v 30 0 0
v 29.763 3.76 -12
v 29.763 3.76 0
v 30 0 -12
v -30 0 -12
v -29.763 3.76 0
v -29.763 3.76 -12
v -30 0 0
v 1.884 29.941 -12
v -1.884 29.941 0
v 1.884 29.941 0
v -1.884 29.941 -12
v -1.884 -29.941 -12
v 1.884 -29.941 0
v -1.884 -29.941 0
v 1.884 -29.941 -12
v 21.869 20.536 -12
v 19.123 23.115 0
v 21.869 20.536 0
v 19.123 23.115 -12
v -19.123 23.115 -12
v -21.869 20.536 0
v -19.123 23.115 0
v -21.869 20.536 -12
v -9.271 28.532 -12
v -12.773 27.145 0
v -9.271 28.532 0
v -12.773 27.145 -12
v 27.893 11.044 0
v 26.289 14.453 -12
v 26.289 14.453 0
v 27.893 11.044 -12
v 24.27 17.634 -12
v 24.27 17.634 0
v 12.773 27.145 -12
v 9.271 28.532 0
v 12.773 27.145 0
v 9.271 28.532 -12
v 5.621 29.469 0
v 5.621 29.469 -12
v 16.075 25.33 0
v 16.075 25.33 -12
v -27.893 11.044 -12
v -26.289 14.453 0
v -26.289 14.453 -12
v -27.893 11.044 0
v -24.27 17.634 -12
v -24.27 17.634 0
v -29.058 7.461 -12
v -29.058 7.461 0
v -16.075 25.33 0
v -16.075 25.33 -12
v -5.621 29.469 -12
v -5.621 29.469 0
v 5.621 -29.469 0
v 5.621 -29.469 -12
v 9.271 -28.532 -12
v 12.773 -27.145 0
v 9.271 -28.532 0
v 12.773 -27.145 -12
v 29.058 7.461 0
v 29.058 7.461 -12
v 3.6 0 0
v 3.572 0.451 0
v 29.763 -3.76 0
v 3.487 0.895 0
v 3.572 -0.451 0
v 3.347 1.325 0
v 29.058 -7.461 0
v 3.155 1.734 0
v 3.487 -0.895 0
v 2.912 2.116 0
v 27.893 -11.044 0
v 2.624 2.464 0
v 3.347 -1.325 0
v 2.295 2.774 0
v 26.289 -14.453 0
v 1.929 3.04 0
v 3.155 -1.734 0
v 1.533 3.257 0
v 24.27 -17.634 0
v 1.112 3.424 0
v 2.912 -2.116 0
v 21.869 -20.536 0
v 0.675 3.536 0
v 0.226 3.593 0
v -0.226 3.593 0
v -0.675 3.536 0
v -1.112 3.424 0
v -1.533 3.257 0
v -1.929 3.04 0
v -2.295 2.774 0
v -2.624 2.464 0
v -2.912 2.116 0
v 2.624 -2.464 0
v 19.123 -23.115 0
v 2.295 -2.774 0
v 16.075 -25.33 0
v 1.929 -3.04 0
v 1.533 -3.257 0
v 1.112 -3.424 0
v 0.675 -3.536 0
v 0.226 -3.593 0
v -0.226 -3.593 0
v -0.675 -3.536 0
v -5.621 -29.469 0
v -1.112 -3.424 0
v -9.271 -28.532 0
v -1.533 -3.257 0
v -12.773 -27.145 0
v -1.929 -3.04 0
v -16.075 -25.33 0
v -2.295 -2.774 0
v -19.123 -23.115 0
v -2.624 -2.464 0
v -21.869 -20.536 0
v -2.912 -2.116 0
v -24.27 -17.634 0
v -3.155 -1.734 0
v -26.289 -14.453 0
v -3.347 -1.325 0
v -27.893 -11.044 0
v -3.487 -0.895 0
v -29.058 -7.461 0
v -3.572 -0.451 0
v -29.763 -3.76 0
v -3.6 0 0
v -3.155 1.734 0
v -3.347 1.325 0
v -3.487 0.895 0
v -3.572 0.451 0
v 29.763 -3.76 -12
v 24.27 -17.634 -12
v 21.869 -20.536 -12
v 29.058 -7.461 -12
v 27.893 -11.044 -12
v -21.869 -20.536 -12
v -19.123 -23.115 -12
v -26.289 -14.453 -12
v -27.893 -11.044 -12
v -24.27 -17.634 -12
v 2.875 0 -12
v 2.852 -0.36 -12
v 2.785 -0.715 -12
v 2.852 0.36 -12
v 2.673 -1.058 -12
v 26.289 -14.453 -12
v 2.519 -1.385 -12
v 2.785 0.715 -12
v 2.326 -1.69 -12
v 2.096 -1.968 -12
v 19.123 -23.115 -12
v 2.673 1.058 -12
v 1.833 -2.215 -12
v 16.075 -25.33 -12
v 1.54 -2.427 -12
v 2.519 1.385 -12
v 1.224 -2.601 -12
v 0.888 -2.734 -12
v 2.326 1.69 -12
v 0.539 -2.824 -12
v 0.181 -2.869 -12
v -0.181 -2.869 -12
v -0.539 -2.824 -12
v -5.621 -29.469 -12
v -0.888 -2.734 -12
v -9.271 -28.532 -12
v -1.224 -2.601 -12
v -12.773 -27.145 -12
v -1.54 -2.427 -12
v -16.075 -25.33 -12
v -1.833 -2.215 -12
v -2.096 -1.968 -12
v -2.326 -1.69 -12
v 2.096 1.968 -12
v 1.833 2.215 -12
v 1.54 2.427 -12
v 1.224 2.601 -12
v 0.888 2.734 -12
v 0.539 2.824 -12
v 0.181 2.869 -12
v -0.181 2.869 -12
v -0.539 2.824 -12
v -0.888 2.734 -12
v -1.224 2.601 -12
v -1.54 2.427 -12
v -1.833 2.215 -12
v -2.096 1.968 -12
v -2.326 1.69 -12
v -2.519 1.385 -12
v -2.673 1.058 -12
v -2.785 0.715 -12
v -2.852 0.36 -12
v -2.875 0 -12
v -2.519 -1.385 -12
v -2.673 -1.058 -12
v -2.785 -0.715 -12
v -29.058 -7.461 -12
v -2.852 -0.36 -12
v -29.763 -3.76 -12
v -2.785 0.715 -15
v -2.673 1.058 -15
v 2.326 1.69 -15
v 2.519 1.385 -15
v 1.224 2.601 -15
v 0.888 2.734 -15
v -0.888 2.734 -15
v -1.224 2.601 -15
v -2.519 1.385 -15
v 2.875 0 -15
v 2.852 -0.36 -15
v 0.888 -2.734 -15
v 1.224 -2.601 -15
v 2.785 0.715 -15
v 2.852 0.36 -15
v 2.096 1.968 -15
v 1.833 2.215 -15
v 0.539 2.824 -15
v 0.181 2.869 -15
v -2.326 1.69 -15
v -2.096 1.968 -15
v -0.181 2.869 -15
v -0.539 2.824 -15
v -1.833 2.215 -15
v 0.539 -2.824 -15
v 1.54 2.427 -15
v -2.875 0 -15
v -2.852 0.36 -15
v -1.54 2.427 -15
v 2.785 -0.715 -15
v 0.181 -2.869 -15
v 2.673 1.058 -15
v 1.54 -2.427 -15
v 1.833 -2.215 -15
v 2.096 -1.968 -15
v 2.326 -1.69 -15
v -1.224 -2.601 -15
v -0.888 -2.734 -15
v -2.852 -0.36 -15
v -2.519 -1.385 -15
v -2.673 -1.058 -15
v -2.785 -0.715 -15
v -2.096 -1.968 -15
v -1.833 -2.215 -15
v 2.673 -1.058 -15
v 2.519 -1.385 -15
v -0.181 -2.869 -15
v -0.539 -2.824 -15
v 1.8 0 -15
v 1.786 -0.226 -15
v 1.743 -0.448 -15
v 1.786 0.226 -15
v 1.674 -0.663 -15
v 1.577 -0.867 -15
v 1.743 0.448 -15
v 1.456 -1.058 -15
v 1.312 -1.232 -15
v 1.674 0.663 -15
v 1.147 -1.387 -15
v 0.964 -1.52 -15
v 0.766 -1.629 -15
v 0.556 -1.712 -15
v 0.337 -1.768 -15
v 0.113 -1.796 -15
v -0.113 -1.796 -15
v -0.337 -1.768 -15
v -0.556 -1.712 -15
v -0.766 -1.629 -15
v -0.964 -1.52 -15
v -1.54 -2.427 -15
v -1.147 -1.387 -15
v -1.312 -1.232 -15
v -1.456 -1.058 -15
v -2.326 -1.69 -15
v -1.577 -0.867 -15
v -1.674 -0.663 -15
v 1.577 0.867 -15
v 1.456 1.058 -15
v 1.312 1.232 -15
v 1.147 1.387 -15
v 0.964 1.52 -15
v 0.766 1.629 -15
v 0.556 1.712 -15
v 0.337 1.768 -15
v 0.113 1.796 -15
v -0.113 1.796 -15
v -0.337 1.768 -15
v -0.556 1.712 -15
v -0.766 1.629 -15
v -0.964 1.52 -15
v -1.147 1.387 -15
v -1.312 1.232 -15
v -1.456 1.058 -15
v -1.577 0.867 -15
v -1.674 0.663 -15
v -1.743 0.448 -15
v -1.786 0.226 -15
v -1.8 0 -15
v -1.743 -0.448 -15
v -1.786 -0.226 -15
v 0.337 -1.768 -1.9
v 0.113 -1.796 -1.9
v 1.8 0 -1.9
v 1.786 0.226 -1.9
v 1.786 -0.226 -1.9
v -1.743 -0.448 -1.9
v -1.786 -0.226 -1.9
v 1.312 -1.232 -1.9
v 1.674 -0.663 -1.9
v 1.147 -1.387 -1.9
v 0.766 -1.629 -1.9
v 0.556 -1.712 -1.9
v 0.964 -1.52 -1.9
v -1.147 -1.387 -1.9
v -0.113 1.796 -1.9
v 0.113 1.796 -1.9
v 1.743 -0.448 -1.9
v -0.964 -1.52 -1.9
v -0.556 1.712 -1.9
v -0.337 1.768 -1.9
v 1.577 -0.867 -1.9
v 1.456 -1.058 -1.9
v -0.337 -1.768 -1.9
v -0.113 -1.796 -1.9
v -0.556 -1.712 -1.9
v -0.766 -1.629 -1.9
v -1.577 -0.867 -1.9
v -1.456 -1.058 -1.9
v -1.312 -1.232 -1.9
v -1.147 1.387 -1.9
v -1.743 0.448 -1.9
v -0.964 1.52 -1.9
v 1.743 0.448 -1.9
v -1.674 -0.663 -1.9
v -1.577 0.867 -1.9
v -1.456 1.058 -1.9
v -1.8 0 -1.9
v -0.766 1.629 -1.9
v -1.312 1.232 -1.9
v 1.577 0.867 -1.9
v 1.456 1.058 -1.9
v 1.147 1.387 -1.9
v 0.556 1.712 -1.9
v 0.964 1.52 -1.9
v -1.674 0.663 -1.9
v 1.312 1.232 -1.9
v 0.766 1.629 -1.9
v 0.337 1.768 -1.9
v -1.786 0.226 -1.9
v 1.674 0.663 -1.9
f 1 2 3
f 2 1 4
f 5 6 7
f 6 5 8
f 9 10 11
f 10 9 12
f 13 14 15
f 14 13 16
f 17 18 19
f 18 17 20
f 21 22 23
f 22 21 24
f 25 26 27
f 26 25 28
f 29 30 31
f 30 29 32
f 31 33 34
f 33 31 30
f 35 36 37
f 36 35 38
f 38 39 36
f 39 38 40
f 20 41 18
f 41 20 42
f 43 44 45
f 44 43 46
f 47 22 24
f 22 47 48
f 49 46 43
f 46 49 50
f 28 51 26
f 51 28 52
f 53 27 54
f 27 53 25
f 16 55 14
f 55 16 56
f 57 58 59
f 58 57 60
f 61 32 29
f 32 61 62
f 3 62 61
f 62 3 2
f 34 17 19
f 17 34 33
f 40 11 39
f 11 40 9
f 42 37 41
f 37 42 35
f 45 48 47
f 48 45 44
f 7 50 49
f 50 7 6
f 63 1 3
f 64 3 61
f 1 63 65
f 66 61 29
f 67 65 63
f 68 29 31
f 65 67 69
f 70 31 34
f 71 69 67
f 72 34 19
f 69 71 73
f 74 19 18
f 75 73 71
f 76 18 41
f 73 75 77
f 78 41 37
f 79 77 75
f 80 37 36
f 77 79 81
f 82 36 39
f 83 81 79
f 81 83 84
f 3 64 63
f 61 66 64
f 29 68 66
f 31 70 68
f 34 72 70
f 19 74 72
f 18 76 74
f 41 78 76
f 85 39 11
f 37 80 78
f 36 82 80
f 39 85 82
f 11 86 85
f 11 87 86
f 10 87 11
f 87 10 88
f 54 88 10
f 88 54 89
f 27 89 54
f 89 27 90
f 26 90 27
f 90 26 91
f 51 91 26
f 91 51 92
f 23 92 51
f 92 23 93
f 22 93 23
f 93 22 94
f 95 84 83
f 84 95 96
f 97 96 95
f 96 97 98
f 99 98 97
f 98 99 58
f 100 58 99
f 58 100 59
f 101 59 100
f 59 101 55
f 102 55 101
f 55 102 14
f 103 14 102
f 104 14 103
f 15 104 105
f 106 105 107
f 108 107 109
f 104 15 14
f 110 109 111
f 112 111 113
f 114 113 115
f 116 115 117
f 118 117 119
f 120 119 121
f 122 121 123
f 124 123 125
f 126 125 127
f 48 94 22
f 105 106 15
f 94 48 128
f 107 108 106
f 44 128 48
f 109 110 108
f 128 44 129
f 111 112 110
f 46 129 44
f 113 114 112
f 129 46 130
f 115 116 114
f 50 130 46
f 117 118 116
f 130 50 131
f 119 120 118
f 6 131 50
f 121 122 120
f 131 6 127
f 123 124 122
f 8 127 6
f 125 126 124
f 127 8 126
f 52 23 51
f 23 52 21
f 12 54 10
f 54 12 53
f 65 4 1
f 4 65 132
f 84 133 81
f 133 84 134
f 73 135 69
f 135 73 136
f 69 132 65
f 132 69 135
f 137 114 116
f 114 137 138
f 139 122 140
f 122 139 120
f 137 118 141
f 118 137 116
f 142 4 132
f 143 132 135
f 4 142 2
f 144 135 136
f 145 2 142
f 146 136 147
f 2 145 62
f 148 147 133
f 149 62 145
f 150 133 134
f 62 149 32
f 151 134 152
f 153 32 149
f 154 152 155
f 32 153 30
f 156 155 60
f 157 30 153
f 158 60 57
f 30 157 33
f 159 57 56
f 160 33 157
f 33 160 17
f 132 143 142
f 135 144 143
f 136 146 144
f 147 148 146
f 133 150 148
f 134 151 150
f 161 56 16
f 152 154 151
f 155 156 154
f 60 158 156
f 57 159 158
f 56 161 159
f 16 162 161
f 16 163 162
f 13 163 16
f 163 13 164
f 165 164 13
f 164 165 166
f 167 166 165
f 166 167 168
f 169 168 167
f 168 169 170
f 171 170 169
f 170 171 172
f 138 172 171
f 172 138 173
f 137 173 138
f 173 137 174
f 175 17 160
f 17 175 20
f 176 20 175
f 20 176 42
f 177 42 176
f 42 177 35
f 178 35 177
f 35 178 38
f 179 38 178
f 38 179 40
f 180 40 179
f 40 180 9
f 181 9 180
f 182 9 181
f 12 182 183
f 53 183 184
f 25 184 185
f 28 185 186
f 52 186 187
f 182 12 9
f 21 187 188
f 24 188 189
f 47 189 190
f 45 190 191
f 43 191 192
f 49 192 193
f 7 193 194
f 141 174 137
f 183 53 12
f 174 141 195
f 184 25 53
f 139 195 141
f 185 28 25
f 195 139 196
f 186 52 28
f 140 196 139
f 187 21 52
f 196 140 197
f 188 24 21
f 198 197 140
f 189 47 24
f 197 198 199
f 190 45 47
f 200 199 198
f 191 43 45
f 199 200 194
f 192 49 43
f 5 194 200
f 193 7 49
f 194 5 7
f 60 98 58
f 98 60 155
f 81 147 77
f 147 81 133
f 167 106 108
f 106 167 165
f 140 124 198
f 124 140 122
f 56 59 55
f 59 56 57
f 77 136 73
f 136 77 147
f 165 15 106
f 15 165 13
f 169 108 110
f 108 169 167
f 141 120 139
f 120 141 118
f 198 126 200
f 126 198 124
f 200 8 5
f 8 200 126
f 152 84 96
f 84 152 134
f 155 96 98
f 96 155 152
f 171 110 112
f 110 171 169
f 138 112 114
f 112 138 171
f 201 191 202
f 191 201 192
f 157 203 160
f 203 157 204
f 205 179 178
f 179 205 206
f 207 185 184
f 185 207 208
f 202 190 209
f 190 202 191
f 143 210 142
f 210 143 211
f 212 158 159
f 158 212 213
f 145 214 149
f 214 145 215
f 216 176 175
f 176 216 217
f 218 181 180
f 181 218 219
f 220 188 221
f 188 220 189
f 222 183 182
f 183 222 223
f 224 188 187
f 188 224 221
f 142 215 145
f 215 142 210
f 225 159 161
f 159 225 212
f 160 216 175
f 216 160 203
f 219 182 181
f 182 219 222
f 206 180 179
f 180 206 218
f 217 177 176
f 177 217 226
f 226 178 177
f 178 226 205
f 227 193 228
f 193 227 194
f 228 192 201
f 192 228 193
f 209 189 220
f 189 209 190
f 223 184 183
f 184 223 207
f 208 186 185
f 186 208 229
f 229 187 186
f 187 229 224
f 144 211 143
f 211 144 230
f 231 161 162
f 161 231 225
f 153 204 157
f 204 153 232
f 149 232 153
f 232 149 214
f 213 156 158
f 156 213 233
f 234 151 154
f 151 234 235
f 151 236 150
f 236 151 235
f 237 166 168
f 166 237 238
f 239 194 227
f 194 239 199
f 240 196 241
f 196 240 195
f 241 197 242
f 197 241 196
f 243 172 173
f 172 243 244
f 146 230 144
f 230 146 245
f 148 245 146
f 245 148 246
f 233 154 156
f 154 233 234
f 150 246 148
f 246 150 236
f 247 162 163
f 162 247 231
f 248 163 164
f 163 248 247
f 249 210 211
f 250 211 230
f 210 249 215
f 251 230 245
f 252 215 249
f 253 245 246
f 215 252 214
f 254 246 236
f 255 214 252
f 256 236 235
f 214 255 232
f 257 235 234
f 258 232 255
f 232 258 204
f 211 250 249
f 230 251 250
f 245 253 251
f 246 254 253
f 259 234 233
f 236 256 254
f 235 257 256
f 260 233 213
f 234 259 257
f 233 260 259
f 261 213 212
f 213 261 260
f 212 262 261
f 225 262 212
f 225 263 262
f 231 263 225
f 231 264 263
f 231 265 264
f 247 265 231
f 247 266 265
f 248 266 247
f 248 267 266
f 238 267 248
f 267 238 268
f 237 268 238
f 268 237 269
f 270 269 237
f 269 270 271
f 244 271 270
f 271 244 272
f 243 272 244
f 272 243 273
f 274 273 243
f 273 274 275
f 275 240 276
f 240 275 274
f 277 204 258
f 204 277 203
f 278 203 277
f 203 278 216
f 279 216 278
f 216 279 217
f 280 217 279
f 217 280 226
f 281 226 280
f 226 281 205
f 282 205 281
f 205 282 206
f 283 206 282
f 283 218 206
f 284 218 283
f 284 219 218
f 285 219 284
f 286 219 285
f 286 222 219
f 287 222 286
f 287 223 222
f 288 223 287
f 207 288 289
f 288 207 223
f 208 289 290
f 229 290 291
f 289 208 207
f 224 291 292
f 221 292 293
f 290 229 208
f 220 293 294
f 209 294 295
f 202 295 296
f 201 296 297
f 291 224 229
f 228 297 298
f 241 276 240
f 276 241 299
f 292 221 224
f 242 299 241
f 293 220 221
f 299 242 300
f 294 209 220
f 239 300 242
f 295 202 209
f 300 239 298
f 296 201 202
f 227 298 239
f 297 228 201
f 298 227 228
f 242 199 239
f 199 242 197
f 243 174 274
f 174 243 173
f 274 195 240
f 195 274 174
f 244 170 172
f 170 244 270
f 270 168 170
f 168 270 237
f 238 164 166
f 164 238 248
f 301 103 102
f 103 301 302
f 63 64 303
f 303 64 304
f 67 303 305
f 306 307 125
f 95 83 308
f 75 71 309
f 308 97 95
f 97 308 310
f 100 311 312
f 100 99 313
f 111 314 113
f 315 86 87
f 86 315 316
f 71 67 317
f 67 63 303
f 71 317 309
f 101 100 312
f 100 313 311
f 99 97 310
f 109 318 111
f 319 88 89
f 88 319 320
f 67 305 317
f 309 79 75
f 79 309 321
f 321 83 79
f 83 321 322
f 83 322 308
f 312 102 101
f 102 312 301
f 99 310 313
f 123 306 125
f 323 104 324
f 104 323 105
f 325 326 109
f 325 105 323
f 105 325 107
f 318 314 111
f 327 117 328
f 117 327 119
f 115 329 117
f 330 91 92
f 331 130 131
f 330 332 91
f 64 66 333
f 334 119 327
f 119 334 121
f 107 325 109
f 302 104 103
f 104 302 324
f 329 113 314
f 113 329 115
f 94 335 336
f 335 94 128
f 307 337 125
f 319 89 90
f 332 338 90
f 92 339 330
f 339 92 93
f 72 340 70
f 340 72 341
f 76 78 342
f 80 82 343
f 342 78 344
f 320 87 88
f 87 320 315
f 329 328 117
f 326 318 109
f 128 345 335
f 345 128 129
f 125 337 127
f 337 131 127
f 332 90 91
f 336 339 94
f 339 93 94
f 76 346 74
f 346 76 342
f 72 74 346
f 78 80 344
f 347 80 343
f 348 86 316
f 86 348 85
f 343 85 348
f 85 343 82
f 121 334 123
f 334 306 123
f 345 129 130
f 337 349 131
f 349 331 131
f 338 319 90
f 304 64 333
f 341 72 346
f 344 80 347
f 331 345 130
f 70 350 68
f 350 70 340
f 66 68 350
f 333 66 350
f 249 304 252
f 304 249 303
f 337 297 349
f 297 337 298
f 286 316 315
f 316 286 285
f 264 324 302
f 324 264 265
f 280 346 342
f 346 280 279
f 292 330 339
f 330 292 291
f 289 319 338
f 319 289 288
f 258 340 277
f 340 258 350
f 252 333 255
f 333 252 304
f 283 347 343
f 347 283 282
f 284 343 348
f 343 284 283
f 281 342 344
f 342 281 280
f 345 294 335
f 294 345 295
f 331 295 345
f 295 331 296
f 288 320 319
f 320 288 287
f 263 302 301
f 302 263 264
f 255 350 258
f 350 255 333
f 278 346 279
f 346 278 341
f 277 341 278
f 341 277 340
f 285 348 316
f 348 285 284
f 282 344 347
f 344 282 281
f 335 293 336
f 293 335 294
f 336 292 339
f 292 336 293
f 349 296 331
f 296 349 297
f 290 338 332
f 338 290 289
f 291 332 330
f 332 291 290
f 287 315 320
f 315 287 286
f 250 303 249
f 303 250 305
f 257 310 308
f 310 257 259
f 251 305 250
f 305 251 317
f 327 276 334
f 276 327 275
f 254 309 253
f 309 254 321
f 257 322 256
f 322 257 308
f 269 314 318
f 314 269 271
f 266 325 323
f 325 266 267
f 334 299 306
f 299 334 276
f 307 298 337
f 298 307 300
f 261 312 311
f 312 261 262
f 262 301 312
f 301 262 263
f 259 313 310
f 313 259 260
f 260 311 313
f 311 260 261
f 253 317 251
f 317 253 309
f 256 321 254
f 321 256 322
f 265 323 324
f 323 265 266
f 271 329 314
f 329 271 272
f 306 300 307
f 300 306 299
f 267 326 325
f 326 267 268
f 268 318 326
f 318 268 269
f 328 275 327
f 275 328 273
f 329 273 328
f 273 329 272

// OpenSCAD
$fn = 50;


difference() {
	union() {
		translate(v = [0, 0, -12.0000000000]) {
			cylinder(h = 12, r = 30.0000000000);
		}
		translate(v = [0, 0, -15.0000000000]) {
			cylinder(h = 15, r = 2.8750000000);
		}
	}
	union() {
		translate(v = [0, 0, 0]) {
			rotate(a = [0, 0, 0]) {
				difference() {
					union() {
						translate(v = [0, 0, -15.0000000000]) {
							cylinder(h = 15, r = 1.5000000000);
						}
						translate(v = [0, 0, -1.9000000000]) {
							cylinder(h = 1.9000000000, r1 = 1.8000000000, r2 = 3.6000000000);
						}
						translate(v = [0, 0, -15.0000000000]) {
							cylinder(h = 15, r = 1.8000000000);
						}
						translate(v = [0, 0, -15.0000000000]) {
							cylinder(h = 15, r = 1.5000000000);
						}
					}
					union();
				}
			}
		}
	}
}
